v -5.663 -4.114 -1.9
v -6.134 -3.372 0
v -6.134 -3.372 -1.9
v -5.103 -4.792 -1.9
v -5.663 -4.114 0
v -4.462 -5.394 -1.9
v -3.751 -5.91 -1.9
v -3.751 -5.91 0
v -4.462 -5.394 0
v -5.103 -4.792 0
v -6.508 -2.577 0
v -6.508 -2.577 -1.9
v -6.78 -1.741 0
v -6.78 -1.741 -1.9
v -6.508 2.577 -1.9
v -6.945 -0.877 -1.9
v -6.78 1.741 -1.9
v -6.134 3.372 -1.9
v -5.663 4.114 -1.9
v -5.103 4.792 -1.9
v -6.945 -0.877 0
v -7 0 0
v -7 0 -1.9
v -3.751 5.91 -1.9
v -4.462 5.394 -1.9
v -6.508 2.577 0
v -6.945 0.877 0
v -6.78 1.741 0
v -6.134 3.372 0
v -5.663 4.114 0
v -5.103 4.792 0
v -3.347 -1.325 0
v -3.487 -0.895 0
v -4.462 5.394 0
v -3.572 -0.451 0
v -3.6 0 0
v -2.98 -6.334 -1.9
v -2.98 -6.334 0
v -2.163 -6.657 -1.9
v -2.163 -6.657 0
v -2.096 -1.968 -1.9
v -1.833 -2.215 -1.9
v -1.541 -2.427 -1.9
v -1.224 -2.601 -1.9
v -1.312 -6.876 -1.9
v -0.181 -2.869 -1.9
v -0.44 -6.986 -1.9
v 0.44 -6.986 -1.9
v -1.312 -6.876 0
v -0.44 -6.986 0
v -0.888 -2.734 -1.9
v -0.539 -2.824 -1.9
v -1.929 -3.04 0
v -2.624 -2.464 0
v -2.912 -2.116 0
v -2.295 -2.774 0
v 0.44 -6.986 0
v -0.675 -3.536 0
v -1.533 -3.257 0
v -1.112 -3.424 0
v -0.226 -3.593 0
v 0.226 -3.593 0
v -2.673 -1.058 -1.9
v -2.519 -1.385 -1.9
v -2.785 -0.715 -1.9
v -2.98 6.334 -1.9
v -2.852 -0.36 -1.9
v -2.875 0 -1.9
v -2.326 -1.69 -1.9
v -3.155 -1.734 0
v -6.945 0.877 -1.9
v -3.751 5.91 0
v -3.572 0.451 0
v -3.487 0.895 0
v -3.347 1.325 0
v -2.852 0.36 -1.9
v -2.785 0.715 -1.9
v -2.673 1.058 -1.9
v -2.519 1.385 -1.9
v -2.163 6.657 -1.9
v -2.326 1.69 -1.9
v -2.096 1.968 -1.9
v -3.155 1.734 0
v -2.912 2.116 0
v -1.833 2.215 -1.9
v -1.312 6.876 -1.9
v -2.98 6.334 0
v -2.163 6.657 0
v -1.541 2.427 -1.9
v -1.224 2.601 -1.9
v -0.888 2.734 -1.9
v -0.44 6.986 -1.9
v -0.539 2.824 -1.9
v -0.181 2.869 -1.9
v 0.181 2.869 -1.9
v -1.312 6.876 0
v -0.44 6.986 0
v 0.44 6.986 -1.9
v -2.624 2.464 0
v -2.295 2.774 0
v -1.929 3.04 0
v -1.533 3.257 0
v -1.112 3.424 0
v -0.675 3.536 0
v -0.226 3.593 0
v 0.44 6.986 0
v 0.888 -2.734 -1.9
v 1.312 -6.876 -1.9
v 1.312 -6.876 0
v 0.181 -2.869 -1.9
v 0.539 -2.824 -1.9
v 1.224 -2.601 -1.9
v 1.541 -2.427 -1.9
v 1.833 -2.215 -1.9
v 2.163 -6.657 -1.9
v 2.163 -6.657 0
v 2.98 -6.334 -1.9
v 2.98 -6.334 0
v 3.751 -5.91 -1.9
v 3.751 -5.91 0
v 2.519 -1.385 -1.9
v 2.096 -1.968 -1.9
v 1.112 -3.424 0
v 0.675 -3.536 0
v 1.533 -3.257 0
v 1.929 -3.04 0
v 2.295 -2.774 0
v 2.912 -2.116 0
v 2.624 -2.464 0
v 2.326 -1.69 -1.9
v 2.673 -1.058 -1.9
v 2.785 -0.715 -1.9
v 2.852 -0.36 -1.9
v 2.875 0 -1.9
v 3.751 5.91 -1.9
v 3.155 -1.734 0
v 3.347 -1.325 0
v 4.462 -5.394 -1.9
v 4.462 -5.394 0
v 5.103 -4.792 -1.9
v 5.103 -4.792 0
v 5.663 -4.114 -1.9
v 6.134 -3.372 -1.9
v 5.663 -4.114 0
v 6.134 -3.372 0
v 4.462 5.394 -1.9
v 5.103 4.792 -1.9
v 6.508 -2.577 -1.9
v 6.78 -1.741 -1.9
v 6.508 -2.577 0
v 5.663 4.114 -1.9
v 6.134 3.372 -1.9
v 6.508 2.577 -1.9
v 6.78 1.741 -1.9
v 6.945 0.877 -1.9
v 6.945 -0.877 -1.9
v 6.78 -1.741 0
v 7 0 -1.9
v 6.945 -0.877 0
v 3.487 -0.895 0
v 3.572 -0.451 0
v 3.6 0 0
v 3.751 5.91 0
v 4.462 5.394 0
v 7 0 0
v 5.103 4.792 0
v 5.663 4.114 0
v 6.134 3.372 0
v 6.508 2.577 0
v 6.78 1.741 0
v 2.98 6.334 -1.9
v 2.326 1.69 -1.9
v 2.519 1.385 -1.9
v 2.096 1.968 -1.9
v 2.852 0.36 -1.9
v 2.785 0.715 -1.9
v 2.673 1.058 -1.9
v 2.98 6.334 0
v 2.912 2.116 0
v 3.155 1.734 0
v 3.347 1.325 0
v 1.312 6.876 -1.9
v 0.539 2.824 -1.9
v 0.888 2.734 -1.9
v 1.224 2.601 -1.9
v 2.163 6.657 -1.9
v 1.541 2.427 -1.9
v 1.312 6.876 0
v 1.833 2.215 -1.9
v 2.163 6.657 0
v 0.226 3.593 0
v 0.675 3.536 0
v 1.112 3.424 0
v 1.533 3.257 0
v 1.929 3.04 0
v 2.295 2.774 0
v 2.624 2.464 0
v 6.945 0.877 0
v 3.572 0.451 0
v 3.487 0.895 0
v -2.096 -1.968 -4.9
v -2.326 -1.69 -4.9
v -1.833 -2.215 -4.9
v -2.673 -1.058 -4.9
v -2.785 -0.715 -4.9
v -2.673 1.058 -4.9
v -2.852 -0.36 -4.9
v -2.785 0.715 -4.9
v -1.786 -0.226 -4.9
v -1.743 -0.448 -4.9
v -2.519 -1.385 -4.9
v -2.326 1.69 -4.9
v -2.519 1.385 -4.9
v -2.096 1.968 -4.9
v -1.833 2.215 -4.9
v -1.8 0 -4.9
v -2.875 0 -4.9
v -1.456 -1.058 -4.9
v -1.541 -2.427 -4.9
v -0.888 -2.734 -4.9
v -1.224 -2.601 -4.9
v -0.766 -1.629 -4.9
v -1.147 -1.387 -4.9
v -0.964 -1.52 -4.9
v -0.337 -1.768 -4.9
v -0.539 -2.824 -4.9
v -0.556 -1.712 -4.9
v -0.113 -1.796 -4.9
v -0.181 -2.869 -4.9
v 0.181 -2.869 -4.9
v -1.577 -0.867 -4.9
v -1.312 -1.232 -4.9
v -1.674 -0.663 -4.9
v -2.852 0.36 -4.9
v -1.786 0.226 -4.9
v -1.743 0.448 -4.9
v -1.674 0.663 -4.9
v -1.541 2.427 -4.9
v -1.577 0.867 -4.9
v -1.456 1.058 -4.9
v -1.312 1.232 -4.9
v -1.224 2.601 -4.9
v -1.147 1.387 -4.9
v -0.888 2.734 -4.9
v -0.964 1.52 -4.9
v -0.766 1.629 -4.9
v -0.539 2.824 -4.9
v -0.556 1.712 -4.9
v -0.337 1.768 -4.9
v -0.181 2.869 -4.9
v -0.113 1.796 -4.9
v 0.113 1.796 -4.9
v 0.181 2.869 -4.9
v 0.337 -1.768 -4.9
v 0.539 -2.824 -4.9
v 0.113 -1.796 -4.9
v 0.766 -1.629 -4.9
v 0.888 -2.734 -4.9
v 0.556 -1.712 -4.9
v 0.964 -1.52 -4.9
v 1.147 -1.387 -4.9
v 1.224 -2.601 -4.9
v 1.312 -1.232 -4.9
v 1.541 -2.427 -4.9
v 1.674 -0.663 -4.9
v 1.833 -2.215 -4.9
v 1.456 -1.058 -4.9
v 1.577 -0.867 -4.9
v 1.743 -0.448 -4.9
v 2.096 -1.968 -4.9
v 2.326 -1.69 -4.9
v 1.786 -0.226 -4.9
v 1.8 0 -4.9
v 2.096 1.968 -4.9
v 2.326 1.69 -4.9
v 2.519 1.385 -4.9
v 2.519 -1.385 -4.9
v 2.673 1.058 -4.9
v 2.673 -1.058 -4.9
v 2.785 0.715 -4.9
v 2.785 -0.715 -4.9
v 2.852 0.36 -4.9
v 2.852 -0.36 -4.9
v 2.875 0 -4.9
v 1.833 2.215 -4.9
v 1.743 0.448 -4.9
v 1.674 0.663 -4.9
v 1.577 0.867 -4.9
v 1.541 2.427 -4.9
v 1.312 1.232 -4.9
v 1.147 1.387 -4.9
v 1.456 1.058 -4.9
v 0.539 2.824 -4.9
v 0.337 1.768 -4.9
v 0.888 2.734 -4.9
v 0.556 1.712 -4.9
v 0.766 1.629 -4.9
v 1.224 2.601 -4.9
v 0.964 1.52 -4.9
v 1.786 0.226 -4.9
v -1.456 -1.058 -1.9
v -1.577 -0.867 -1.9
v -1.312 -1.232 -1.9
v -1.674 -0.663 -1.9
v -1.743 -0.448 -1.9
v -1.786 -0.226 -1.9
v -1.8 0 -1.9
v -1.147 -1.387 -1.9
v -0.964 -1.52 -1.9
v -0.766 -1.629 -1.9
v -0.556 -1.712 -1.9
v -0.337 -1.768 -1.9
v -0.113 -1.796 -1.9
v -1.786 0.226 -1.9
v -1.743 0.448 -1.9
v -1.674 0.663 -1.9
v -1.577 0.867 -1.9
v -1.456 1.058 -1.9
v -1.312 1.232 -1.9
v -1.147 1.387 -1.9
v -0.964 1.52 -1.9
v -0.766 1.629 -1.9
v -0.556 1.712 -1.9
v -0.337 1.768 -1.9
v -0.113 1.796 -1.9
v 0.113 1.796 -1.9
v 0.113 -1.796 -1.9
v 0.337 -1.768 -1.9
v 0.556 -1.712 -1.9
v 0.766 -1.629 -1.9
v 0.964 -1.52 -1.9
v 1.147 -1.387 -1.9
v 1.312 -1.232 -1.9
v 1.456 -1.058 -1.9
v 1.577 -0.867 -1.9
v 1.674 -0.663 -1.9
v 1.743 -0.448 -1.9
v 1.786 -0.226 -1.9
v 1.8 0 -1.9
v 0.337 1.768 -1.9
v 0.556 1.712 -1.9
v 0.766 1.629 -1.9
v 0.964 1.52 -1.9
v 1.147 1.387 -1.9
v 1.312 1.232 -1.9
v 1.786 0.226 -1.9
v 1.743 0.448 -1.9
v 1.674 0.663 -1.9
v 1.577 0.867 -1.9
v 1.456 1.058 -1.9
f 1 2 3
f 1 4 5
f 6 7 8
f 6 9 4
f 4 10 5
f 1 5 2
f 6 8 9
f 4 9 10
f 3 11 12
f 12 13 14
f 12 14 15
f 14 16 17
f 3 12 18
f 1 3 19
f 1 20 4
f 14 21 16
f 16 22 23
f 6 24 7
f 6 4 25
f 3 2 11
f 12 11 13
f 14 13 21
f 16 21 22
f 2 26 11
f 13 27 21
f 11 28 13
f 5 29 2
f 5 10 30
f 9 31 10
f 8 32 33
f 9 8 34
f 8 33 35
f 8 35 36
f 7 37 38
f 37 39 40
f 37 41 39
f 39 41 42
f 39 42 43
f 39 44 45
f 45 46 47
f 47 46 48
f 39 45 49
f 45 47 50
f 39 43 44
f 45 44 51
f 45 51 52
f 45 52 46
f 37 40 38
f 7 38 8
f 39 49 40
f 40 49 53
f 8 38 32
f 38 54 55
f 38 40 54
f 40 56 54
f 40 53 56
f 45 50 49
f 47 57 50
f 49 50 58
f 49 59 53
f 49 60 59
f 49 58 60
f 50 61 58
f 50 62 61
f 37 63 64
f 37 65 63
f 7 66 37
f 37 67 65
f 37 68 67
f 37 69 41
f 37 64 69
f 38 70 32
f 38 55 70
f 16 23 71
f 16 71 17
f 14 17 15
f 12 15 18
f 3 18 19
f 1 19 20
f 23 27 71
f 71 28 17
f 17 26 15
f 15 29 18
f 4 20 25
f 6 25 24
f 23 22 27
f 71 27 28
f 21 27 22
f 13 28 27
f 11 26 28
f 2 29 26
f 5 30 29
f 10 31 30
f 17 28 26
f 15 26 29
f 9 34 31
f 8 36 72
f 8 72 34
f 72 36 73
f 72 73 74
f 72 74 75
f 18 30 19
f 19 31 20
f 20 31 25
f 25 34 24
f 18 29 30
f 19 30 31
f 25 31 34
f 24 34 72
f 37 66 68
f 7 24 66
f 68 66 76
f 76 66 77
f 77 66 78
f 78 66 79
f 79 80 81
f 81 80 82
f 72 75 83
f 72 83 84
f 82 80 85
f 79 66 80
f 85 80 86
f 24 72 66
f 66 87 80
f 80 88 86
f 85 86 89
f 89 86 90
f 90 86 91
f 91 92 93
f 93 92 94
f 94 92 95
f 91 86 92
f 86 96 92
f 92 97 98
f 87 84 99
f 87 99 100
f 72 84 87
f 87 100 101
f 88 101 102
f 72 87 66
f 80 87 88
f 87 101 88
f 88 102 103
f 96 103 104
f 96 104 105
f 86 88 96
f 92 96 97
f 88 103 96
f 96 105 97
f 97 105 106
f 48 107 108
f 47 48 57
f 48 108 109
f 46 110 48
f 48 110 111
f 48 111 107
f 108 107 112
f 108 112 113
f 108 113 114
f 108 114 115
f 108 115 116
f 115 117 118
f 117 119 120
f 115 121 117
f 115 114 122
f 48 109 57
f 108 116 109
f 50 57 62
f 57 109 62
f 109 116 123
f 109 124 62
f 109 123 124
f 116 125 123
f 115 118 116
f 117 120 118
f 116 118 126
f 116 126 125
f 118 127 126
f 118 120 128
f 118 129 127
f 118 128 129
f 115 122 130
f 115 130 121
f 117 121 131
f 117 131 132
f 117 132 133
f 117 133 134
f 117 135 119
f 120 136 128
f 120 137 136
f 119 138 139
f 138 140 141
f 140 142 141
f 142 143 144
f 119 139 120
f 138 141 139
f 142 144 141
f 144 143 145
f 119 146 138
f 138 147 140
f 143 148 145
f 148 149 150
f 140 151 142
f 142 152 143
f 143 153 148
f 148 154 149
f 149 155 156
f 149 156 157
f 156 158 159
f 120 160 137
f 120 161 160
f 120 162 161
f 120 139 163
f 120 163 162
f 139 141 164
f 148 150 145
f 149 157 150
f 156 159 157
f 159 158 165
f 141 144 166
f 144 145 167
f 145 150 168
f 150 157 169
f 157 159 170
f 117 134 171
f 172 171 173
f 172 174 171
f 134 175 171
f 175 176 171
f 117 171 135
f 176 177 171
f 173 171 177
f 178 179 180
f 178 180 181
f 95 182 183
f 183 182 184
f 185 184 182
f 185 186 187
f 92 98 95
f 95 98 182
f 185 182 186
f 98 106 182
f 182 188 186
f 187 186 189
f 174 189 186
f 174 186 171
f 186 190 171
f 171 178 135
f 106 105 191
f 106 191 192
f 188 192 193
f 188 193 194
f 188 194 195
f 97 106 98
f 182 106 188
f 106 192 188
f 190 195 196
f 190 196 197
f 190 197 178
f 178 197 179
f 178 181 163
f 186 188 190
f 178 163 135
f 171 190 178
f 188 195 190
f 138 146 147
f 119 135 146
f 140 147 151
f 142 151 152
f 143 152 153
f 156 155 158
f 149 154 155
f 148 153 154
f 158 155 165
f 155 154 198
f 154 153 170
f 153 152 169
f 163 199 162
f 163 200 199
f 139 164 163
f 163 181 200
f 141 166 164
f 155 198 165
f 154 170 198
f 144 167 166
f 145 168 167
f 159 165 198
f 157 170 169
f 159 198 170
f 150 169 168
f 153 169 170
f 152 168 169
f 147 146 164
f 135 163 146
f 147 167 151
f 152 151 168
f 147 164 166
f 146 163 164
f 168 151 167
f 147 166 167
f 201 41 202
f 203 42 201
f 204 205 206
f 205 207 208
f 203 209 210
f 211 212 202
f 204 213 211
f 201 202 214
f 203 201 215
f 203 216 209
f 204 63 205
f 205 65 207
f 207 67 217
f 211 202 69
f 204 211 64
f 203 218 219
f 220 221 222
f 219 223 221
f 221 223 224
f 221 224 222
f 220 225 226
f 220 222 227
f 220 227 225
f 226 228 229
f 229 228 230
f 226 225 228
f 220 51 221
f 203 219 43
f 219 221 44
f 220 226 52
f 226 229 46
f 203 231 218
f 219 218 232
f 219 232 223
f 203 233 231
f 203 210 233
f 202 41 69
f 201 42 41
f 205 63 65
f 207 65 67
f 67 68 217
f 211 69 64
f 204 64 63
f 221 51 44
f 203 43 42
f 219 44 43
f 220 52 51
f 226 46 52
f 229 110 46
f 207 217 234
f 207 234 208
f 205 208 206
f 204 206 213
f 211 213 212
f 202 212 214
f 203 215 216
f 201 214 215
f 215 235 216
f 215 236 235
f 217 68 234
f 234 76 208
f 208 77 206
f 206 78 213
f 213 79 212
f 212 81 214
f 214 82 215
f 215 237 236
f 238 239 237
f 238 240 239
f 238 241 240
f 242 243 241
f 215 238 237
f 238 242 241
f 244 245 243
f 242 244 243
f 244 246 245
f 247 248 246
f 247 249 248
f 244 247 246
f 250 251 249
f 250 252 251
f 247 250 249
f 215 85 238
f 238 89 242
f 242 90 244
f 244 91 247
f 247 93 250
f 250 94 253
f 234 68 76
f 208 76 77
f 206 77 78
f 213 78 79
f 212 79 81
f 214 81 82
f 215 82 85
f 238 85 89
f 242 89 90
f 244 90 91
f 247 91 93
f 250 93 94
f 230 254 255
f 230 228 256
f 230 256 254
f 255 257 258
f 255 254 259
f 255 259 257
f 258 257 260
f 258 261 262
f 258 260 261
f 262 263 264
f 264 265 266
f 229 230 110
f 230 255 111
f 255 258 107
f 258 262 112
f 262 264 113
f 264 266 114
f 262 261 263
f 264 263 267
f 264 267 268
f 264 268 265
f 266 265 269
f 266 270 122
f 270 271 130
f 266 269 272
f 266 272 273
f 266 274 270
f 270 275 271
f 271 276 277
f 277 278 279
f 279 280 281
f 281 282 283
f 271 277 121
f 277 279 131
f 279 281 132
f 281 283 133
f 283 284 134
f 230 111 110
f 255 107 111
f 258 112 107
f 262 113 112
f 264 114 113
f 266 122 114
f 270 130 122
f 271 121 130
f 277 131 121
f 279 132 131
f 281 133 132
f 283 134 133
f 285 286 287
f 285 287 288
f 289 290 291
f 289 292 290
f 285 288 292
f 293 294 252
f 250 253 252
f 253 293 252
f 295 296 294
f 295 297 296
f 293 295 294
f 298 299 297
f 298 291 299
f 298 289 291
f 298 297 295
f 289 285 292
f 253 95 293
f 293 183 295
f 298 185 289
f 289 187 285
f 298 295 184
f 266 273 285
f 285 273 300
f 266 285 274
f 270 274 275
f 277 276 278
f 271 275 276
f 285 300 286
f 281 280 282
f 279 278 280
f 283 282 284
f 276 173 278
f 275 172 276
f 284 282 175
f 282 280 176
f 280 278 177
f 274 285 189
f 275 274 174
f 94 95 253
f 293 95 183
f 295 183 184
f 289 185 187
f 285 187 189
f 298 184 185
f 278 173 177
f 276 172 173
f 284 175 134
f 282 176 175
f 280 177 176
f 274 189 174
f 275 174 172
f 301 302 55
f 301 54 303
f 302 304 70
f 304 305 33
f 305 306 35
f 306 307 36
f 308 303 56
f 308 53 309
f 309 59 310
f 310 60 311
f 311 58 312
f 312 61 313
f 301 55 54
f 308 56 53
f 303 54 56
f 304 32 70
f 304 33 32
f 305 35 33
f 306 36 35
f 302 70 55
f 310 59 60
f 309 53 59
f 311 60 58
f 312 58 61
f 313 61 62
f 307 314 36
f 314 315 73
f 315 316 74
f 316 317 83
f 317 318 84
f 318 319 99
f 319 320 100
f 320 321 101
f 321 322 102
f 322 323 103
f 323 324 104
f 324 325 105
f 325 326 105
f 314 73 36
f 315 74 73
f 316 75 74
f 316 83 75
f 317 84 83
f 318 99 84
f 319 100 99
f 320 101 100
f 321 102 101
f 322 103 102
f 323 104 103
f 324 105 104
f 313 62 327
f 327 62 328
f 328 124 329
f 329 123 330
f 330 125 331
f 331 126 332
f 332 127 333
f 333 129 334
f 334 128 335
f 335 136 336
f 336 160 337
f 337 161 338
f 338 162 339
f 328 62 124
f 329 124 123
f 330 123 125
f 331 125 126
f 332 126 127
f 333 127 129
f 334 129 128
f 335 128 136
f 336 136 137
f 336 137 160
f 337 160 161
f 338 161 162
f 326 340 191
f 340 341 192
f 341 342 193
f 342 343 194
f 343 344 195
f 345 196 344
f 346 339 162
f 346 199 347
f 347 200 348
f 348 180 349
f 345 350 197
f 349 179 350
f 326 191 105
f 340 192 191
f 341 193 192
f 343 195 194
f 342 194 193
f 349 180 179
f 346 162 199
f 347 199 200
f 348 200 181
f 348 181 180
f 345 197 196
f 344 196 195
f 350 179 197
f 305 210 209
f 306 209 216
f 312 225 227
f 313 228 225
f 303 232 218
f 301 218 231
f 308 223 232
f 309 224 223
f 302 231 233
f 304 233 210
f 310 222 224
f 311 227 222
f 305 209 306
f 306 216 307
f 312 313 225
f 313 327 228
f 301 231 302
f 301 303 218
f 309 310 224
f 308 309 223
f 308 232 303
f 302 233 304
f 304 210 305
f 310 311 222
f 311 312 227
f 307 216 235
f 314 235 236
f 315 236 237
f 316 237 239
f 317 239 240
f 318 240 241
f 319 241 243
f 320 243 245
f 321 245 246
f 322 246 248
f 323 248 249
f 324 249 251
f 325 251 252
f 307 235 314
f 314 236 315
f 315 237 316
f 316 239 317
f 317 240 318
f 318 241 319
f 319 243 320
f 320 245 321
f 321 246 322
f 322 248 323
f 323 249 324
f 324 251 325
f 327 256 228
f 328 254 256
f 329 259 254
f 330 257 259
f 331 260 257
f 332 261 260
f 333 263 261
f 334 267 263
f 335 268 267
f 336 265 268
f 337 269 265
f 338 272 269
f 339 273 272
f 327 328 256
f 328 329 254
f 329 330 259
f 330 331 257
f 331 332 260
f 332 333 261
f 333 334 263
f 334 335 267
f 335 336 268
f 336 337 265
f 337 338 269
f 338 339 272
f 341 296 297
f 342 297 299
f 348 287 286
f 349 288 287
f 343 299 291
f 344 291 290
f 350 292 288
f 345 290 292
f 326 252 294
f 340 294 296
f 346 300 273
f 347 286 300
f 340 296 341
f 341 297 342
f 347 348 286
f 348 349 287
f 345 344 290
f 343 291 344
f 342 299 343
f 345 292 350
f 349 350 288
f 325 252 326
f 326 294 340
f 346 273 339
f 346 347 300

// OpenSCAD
$fn = 50;

difference() {
	union() {
		translate(v = [0, 0, -1.9]) {
			cylinder(h = 1.9, r = 7.0);
		}
		#translate(v = [0, 0, -4.9]) {
			cylinder(h = 4.9, r = 2.875);
		}
	}
	union() {
		translate(v = [0, 0, 0]) {
			rotate(a = [0, 0, 0]) {
				difference() {
					union() {
						translate(v = [0, 0, -4.9]) {
							cylinder(h = 4.9, r = 1.5);
						}
						translate(v = [0, 0, -1.9]) {
							cylinder(h = 1.9, r1 = 1.8, r2 = 3.6);
						}
						translate(v = [0, 0, -4.9]) {
							cylinder(h = 4.9, r = 1.8);
						}
						translate(v = [0, 0, -4.9]) {
							cylinder(h = 4.9, r = 1.5);
						}
					}
					union();
				}
			}
		}
	}
}
